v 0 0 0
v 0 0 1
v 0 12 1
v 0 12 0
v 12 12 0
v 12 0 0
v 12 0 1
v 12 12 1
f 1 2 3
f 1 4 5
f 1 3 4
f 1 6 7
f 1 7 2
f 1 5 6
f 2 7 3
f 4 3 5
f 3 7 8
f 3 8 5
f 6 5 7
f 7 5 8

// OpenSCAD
/* Warning, this is a very basic generator with a lot of approximation 
input data : [TQFP, X2X, 12x12x1.0mm, 80, , C, C04-00092C]
generated by com.zoubworld.electronics.cad.model3d.Basic
Date : Sun Feb 15 10:50:48 CET 2026
*/

//body
color("black")
translate([0,0,0])
cube([12.0,12.0,1.0], center=false);
